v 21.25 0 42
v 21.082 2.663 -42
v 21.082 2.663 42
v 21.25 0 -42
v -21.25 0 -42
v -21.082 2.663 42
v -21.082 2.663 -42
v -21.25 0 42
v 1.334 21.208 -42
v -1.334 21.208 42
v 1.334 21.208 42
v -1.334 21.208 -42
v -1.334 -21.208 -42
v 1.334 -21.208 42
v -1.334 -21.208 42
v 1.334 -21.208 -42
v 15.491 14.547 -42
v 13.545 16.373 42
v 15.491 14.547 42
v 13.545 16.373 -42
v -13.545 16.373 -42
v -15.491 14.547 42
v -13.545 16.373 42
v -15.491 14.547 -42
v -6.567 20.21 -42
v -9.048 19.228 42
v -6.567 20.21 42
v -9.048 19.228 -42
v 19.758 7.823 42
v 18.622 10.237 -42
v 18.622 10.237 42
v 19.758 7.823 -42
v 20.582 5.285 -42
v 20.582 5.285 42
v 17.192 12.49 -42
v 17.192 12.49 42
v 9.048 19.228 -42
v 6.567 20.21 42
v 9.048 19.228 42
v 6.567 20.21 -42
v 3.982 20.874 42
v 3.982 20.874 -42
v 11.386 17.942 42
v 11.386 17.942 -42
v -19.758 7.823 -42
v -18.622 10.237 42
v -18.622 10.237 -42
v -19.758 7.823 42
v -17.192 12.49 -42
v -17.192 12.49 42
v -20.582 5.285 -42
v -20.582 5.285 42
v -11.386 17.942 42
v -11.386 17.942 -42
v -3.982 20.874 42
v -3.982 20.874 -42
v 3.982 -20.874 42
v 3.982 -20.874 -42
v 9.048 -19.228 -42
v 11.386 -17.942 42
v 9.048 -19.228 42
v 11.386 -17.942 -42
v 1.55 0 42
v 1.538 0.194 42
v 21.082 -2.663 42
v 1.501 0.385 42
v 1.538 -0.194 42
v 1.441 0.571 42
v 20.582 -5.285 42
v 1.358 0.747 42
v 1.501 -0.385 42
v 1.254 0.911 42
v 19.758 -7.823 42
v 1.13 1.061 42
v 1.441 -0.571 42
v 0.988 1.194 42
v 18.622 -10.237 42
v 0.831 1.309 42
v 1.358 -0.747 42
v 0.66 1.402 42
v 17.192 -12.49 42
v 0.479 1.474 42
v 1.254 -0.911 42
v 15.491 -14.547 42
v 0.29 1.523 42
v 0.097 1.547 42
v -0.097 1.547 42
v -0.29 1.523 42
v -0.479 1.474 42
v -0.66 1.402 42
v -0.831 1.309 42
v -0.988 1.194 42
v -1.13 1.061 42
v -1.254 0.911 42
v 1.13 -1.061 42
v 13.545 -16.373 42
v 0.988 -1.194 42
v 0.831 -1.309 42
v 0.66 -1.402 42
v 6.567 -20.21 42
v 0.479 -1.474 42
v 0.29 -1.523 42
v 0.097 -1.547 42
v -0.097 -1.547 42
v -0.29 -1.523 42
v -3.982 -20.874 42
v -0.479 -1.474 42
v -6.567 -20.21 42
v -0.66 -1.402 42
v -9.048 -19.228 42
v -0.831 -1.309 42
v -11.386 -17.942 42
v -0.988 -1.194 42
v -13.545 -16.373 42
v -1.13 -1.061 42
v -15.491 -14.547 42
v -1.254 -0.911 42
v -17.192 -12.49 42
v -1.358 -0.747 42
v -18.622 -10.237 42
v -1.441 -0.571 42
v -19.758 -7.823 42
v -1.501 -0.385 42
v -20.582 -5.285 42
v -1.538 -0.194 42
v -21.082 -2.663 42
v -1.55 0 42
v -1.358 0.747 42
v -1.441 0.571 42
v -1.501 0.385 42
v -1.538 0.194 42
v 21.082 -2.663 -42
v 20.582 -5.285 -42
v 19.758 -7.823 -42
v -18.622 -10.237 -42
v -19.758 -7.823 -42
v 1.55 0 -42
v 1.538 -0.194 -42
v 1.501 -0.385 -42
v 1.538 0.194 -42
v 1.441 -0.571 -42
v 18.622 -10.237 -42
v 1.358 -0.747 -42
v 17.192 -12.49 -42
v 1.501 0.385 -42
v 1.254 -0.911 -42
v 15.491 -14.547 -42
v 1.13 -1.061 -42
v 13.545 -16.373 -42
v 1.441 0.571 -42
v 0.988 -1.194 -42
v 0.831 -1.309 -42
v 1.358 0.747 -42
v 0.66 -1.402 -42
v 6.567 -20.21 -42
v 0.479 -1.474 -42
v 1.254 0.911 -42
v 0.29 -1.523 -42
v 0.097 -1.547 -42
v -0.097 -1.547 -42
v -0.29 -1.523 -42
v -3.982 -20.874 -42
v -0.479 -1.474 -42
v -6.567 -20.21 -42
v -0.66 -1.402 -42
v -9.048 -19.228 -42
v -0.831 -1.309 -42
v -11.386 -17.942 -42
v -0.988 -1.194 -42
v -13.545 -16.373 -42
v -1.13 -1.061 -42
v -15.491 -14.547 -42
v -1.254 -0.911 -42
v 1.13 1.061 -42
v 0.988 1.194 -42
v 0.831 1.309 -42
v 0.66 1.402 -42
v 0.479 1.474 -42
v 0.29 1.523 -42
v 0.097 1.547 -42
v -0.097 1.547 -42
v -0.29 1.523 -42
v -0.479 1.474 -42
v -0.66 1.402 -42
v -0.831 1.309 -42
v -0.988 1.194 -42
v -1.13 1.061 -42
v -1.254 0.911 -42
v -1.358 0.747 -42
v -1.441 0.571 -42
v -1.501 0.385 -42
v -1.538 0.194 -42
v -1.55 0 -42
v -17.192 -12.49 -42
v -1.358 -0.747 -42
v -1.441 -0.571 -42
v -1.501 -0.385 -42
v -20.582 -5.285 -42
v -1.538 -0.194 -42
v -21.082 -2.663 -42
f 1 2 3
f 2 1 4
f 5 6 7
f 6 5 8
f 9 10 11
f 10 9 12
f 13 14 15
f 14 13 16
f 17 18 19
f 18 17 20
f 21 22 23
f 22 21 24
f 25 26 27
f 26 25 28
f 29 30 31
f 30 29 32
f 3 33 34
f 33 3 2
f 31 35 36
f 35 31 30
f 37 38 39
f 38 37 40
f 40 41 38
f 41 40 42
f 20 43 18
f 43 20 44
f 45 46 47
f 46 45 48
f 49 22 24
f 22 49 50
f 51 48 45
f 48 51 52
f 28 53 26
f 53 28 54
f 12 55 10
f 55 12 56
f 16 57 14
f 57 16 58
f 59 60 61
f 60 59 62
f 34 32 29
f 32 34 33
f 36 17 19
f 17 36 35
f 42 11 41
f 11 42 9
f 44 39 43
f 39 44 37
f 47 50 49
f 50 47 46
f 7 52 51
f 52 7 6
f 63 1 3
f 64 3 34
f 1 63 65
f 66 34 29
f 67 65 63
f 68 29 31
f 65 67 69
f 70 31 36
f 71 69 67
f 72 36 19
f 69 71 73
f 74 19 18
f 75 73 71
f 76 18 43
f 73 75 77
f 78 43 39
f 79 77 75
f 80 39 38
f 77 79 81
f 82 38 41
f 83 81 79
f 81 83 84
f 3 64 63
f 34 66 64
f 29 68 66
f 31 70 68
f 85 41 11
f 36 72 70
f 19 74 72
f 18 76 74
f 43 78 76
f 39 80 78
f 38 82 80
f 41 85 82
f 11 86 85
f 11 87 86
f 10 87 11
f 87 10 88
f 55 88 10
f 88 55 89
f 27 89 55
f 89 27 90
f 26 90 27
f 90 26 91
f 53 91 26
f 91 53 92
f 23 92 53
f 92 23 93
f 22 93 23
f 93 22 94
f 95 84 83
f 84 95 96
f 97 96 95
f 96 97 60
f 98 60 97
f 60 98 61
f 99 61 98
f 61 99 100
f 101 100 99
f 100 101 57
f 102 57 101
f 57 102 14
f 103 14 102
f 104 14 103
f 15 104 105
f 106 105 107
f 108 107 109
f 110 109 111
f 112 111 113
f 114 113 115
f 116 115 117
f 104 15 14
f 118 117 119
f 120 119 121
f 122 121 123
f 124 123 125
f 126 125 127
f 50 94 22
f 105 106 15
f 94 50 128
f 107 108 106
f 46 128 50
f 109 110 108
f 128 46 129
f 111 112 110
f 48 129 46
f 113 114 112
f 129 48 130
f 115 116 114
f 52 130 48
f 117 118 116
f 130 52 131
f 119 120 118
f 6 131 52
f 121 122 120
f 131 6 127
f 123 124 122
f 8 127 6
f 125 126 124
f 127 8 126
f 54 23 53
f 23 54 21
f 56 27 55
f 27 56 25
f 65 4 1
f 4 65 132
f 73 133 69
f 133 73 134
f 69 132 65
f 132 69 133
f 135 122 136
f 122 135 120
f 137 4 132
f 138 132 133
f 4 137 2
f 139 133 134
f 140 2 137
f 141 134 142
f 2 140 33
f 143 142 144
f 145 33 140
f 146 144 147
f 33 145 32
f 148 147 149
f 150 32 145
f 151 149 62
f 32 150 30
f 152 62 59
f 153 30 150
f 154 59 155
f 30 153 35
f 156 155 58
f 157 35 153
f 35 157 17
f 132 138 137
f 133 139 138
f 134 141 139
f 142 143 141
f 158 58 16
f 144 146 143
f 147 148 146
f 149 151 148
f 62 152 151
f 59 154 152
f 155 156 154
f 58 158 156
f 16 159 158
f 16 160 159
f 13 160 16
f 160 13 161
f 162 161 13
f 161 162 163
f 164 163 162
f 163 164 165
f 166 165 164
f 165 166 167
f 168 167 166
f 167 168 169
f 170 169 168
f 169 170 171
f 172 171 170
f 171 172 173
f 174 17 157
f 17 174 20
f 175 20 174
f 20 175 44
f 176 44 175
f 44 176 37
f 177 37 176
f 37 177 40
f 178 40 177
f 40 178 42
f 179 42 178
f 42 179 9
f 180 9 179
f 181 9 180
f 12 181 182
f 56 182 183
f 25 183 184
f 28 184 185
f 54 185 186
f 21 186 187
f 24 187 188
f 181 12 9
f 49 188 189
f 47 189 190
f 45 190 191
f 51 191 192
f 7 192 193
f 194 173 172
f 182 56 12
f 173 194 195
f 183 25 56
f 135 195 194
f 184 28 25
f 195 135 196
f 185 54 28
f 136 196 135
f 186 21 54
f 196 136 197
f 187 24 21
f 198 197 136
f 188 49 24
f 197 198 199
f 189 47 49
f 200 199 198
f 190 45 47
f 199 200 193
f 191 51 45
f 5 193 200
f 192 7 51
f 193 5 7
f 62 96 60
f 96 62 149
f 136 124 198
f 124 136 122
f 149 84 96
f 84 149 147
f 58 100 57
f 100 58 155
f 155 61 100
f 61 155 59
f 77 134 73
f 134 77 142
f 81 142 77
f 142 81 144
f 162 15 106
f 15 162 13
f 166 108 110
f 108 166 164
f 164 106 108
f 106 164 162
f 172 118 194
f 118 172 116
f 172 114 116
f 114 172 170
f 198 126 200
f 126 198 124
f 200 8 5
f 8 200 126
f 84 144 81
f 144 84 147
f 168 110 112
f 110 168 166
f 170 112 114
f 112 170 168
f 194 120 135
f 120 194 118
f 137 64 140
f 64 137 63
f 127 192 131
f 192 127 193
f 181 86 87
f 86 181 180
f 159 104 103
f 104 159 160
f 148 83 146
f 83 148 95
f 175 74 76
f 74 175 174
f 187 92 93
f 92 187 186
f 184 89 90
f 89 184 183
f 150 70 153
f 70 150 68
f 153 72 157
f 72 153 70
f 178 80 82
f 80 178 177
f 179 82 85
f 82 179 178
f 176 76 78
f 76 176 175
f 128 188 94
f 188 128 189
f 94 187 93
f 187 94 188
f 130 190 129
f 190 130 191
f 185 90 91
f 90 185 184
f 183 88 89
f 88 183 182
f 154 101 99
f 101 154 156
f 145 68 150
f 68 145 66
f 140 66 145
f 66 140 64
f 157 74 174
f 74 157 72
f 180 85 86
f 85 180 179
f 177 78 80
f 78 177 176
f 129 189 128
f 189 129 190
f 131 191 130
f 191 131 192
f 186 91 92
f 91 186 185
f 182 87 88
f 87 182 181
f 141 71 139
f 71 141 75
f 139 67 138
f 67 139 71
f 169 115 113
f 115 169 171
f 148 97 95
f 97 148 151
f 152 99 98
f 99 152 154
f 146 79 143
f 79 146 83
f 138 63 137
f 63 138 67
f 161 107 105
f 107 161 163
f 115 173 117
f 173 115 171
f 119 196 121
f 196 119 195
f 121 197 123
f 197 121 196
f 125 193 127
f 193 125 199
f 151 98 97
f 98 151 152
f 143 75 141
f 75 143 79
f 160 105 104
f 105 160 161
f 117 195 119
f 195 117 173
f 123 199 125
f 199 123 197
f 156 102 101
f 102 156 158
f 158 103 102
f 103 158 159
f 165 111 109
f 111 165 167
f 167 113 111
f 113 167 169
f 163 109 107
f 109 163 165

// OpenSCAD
$fn = 50;


difference() {
	union() {
		translate(v = [0, 0, -42.0000000000]) {
			cylinder(h = 84, r = 21.2500000000);
		}
	}
	union() {
		translate(v = [0, 0, -100.0000000000]) {
			cylinder(h = 200, r = 1.5500000000);
		}
	}
}
